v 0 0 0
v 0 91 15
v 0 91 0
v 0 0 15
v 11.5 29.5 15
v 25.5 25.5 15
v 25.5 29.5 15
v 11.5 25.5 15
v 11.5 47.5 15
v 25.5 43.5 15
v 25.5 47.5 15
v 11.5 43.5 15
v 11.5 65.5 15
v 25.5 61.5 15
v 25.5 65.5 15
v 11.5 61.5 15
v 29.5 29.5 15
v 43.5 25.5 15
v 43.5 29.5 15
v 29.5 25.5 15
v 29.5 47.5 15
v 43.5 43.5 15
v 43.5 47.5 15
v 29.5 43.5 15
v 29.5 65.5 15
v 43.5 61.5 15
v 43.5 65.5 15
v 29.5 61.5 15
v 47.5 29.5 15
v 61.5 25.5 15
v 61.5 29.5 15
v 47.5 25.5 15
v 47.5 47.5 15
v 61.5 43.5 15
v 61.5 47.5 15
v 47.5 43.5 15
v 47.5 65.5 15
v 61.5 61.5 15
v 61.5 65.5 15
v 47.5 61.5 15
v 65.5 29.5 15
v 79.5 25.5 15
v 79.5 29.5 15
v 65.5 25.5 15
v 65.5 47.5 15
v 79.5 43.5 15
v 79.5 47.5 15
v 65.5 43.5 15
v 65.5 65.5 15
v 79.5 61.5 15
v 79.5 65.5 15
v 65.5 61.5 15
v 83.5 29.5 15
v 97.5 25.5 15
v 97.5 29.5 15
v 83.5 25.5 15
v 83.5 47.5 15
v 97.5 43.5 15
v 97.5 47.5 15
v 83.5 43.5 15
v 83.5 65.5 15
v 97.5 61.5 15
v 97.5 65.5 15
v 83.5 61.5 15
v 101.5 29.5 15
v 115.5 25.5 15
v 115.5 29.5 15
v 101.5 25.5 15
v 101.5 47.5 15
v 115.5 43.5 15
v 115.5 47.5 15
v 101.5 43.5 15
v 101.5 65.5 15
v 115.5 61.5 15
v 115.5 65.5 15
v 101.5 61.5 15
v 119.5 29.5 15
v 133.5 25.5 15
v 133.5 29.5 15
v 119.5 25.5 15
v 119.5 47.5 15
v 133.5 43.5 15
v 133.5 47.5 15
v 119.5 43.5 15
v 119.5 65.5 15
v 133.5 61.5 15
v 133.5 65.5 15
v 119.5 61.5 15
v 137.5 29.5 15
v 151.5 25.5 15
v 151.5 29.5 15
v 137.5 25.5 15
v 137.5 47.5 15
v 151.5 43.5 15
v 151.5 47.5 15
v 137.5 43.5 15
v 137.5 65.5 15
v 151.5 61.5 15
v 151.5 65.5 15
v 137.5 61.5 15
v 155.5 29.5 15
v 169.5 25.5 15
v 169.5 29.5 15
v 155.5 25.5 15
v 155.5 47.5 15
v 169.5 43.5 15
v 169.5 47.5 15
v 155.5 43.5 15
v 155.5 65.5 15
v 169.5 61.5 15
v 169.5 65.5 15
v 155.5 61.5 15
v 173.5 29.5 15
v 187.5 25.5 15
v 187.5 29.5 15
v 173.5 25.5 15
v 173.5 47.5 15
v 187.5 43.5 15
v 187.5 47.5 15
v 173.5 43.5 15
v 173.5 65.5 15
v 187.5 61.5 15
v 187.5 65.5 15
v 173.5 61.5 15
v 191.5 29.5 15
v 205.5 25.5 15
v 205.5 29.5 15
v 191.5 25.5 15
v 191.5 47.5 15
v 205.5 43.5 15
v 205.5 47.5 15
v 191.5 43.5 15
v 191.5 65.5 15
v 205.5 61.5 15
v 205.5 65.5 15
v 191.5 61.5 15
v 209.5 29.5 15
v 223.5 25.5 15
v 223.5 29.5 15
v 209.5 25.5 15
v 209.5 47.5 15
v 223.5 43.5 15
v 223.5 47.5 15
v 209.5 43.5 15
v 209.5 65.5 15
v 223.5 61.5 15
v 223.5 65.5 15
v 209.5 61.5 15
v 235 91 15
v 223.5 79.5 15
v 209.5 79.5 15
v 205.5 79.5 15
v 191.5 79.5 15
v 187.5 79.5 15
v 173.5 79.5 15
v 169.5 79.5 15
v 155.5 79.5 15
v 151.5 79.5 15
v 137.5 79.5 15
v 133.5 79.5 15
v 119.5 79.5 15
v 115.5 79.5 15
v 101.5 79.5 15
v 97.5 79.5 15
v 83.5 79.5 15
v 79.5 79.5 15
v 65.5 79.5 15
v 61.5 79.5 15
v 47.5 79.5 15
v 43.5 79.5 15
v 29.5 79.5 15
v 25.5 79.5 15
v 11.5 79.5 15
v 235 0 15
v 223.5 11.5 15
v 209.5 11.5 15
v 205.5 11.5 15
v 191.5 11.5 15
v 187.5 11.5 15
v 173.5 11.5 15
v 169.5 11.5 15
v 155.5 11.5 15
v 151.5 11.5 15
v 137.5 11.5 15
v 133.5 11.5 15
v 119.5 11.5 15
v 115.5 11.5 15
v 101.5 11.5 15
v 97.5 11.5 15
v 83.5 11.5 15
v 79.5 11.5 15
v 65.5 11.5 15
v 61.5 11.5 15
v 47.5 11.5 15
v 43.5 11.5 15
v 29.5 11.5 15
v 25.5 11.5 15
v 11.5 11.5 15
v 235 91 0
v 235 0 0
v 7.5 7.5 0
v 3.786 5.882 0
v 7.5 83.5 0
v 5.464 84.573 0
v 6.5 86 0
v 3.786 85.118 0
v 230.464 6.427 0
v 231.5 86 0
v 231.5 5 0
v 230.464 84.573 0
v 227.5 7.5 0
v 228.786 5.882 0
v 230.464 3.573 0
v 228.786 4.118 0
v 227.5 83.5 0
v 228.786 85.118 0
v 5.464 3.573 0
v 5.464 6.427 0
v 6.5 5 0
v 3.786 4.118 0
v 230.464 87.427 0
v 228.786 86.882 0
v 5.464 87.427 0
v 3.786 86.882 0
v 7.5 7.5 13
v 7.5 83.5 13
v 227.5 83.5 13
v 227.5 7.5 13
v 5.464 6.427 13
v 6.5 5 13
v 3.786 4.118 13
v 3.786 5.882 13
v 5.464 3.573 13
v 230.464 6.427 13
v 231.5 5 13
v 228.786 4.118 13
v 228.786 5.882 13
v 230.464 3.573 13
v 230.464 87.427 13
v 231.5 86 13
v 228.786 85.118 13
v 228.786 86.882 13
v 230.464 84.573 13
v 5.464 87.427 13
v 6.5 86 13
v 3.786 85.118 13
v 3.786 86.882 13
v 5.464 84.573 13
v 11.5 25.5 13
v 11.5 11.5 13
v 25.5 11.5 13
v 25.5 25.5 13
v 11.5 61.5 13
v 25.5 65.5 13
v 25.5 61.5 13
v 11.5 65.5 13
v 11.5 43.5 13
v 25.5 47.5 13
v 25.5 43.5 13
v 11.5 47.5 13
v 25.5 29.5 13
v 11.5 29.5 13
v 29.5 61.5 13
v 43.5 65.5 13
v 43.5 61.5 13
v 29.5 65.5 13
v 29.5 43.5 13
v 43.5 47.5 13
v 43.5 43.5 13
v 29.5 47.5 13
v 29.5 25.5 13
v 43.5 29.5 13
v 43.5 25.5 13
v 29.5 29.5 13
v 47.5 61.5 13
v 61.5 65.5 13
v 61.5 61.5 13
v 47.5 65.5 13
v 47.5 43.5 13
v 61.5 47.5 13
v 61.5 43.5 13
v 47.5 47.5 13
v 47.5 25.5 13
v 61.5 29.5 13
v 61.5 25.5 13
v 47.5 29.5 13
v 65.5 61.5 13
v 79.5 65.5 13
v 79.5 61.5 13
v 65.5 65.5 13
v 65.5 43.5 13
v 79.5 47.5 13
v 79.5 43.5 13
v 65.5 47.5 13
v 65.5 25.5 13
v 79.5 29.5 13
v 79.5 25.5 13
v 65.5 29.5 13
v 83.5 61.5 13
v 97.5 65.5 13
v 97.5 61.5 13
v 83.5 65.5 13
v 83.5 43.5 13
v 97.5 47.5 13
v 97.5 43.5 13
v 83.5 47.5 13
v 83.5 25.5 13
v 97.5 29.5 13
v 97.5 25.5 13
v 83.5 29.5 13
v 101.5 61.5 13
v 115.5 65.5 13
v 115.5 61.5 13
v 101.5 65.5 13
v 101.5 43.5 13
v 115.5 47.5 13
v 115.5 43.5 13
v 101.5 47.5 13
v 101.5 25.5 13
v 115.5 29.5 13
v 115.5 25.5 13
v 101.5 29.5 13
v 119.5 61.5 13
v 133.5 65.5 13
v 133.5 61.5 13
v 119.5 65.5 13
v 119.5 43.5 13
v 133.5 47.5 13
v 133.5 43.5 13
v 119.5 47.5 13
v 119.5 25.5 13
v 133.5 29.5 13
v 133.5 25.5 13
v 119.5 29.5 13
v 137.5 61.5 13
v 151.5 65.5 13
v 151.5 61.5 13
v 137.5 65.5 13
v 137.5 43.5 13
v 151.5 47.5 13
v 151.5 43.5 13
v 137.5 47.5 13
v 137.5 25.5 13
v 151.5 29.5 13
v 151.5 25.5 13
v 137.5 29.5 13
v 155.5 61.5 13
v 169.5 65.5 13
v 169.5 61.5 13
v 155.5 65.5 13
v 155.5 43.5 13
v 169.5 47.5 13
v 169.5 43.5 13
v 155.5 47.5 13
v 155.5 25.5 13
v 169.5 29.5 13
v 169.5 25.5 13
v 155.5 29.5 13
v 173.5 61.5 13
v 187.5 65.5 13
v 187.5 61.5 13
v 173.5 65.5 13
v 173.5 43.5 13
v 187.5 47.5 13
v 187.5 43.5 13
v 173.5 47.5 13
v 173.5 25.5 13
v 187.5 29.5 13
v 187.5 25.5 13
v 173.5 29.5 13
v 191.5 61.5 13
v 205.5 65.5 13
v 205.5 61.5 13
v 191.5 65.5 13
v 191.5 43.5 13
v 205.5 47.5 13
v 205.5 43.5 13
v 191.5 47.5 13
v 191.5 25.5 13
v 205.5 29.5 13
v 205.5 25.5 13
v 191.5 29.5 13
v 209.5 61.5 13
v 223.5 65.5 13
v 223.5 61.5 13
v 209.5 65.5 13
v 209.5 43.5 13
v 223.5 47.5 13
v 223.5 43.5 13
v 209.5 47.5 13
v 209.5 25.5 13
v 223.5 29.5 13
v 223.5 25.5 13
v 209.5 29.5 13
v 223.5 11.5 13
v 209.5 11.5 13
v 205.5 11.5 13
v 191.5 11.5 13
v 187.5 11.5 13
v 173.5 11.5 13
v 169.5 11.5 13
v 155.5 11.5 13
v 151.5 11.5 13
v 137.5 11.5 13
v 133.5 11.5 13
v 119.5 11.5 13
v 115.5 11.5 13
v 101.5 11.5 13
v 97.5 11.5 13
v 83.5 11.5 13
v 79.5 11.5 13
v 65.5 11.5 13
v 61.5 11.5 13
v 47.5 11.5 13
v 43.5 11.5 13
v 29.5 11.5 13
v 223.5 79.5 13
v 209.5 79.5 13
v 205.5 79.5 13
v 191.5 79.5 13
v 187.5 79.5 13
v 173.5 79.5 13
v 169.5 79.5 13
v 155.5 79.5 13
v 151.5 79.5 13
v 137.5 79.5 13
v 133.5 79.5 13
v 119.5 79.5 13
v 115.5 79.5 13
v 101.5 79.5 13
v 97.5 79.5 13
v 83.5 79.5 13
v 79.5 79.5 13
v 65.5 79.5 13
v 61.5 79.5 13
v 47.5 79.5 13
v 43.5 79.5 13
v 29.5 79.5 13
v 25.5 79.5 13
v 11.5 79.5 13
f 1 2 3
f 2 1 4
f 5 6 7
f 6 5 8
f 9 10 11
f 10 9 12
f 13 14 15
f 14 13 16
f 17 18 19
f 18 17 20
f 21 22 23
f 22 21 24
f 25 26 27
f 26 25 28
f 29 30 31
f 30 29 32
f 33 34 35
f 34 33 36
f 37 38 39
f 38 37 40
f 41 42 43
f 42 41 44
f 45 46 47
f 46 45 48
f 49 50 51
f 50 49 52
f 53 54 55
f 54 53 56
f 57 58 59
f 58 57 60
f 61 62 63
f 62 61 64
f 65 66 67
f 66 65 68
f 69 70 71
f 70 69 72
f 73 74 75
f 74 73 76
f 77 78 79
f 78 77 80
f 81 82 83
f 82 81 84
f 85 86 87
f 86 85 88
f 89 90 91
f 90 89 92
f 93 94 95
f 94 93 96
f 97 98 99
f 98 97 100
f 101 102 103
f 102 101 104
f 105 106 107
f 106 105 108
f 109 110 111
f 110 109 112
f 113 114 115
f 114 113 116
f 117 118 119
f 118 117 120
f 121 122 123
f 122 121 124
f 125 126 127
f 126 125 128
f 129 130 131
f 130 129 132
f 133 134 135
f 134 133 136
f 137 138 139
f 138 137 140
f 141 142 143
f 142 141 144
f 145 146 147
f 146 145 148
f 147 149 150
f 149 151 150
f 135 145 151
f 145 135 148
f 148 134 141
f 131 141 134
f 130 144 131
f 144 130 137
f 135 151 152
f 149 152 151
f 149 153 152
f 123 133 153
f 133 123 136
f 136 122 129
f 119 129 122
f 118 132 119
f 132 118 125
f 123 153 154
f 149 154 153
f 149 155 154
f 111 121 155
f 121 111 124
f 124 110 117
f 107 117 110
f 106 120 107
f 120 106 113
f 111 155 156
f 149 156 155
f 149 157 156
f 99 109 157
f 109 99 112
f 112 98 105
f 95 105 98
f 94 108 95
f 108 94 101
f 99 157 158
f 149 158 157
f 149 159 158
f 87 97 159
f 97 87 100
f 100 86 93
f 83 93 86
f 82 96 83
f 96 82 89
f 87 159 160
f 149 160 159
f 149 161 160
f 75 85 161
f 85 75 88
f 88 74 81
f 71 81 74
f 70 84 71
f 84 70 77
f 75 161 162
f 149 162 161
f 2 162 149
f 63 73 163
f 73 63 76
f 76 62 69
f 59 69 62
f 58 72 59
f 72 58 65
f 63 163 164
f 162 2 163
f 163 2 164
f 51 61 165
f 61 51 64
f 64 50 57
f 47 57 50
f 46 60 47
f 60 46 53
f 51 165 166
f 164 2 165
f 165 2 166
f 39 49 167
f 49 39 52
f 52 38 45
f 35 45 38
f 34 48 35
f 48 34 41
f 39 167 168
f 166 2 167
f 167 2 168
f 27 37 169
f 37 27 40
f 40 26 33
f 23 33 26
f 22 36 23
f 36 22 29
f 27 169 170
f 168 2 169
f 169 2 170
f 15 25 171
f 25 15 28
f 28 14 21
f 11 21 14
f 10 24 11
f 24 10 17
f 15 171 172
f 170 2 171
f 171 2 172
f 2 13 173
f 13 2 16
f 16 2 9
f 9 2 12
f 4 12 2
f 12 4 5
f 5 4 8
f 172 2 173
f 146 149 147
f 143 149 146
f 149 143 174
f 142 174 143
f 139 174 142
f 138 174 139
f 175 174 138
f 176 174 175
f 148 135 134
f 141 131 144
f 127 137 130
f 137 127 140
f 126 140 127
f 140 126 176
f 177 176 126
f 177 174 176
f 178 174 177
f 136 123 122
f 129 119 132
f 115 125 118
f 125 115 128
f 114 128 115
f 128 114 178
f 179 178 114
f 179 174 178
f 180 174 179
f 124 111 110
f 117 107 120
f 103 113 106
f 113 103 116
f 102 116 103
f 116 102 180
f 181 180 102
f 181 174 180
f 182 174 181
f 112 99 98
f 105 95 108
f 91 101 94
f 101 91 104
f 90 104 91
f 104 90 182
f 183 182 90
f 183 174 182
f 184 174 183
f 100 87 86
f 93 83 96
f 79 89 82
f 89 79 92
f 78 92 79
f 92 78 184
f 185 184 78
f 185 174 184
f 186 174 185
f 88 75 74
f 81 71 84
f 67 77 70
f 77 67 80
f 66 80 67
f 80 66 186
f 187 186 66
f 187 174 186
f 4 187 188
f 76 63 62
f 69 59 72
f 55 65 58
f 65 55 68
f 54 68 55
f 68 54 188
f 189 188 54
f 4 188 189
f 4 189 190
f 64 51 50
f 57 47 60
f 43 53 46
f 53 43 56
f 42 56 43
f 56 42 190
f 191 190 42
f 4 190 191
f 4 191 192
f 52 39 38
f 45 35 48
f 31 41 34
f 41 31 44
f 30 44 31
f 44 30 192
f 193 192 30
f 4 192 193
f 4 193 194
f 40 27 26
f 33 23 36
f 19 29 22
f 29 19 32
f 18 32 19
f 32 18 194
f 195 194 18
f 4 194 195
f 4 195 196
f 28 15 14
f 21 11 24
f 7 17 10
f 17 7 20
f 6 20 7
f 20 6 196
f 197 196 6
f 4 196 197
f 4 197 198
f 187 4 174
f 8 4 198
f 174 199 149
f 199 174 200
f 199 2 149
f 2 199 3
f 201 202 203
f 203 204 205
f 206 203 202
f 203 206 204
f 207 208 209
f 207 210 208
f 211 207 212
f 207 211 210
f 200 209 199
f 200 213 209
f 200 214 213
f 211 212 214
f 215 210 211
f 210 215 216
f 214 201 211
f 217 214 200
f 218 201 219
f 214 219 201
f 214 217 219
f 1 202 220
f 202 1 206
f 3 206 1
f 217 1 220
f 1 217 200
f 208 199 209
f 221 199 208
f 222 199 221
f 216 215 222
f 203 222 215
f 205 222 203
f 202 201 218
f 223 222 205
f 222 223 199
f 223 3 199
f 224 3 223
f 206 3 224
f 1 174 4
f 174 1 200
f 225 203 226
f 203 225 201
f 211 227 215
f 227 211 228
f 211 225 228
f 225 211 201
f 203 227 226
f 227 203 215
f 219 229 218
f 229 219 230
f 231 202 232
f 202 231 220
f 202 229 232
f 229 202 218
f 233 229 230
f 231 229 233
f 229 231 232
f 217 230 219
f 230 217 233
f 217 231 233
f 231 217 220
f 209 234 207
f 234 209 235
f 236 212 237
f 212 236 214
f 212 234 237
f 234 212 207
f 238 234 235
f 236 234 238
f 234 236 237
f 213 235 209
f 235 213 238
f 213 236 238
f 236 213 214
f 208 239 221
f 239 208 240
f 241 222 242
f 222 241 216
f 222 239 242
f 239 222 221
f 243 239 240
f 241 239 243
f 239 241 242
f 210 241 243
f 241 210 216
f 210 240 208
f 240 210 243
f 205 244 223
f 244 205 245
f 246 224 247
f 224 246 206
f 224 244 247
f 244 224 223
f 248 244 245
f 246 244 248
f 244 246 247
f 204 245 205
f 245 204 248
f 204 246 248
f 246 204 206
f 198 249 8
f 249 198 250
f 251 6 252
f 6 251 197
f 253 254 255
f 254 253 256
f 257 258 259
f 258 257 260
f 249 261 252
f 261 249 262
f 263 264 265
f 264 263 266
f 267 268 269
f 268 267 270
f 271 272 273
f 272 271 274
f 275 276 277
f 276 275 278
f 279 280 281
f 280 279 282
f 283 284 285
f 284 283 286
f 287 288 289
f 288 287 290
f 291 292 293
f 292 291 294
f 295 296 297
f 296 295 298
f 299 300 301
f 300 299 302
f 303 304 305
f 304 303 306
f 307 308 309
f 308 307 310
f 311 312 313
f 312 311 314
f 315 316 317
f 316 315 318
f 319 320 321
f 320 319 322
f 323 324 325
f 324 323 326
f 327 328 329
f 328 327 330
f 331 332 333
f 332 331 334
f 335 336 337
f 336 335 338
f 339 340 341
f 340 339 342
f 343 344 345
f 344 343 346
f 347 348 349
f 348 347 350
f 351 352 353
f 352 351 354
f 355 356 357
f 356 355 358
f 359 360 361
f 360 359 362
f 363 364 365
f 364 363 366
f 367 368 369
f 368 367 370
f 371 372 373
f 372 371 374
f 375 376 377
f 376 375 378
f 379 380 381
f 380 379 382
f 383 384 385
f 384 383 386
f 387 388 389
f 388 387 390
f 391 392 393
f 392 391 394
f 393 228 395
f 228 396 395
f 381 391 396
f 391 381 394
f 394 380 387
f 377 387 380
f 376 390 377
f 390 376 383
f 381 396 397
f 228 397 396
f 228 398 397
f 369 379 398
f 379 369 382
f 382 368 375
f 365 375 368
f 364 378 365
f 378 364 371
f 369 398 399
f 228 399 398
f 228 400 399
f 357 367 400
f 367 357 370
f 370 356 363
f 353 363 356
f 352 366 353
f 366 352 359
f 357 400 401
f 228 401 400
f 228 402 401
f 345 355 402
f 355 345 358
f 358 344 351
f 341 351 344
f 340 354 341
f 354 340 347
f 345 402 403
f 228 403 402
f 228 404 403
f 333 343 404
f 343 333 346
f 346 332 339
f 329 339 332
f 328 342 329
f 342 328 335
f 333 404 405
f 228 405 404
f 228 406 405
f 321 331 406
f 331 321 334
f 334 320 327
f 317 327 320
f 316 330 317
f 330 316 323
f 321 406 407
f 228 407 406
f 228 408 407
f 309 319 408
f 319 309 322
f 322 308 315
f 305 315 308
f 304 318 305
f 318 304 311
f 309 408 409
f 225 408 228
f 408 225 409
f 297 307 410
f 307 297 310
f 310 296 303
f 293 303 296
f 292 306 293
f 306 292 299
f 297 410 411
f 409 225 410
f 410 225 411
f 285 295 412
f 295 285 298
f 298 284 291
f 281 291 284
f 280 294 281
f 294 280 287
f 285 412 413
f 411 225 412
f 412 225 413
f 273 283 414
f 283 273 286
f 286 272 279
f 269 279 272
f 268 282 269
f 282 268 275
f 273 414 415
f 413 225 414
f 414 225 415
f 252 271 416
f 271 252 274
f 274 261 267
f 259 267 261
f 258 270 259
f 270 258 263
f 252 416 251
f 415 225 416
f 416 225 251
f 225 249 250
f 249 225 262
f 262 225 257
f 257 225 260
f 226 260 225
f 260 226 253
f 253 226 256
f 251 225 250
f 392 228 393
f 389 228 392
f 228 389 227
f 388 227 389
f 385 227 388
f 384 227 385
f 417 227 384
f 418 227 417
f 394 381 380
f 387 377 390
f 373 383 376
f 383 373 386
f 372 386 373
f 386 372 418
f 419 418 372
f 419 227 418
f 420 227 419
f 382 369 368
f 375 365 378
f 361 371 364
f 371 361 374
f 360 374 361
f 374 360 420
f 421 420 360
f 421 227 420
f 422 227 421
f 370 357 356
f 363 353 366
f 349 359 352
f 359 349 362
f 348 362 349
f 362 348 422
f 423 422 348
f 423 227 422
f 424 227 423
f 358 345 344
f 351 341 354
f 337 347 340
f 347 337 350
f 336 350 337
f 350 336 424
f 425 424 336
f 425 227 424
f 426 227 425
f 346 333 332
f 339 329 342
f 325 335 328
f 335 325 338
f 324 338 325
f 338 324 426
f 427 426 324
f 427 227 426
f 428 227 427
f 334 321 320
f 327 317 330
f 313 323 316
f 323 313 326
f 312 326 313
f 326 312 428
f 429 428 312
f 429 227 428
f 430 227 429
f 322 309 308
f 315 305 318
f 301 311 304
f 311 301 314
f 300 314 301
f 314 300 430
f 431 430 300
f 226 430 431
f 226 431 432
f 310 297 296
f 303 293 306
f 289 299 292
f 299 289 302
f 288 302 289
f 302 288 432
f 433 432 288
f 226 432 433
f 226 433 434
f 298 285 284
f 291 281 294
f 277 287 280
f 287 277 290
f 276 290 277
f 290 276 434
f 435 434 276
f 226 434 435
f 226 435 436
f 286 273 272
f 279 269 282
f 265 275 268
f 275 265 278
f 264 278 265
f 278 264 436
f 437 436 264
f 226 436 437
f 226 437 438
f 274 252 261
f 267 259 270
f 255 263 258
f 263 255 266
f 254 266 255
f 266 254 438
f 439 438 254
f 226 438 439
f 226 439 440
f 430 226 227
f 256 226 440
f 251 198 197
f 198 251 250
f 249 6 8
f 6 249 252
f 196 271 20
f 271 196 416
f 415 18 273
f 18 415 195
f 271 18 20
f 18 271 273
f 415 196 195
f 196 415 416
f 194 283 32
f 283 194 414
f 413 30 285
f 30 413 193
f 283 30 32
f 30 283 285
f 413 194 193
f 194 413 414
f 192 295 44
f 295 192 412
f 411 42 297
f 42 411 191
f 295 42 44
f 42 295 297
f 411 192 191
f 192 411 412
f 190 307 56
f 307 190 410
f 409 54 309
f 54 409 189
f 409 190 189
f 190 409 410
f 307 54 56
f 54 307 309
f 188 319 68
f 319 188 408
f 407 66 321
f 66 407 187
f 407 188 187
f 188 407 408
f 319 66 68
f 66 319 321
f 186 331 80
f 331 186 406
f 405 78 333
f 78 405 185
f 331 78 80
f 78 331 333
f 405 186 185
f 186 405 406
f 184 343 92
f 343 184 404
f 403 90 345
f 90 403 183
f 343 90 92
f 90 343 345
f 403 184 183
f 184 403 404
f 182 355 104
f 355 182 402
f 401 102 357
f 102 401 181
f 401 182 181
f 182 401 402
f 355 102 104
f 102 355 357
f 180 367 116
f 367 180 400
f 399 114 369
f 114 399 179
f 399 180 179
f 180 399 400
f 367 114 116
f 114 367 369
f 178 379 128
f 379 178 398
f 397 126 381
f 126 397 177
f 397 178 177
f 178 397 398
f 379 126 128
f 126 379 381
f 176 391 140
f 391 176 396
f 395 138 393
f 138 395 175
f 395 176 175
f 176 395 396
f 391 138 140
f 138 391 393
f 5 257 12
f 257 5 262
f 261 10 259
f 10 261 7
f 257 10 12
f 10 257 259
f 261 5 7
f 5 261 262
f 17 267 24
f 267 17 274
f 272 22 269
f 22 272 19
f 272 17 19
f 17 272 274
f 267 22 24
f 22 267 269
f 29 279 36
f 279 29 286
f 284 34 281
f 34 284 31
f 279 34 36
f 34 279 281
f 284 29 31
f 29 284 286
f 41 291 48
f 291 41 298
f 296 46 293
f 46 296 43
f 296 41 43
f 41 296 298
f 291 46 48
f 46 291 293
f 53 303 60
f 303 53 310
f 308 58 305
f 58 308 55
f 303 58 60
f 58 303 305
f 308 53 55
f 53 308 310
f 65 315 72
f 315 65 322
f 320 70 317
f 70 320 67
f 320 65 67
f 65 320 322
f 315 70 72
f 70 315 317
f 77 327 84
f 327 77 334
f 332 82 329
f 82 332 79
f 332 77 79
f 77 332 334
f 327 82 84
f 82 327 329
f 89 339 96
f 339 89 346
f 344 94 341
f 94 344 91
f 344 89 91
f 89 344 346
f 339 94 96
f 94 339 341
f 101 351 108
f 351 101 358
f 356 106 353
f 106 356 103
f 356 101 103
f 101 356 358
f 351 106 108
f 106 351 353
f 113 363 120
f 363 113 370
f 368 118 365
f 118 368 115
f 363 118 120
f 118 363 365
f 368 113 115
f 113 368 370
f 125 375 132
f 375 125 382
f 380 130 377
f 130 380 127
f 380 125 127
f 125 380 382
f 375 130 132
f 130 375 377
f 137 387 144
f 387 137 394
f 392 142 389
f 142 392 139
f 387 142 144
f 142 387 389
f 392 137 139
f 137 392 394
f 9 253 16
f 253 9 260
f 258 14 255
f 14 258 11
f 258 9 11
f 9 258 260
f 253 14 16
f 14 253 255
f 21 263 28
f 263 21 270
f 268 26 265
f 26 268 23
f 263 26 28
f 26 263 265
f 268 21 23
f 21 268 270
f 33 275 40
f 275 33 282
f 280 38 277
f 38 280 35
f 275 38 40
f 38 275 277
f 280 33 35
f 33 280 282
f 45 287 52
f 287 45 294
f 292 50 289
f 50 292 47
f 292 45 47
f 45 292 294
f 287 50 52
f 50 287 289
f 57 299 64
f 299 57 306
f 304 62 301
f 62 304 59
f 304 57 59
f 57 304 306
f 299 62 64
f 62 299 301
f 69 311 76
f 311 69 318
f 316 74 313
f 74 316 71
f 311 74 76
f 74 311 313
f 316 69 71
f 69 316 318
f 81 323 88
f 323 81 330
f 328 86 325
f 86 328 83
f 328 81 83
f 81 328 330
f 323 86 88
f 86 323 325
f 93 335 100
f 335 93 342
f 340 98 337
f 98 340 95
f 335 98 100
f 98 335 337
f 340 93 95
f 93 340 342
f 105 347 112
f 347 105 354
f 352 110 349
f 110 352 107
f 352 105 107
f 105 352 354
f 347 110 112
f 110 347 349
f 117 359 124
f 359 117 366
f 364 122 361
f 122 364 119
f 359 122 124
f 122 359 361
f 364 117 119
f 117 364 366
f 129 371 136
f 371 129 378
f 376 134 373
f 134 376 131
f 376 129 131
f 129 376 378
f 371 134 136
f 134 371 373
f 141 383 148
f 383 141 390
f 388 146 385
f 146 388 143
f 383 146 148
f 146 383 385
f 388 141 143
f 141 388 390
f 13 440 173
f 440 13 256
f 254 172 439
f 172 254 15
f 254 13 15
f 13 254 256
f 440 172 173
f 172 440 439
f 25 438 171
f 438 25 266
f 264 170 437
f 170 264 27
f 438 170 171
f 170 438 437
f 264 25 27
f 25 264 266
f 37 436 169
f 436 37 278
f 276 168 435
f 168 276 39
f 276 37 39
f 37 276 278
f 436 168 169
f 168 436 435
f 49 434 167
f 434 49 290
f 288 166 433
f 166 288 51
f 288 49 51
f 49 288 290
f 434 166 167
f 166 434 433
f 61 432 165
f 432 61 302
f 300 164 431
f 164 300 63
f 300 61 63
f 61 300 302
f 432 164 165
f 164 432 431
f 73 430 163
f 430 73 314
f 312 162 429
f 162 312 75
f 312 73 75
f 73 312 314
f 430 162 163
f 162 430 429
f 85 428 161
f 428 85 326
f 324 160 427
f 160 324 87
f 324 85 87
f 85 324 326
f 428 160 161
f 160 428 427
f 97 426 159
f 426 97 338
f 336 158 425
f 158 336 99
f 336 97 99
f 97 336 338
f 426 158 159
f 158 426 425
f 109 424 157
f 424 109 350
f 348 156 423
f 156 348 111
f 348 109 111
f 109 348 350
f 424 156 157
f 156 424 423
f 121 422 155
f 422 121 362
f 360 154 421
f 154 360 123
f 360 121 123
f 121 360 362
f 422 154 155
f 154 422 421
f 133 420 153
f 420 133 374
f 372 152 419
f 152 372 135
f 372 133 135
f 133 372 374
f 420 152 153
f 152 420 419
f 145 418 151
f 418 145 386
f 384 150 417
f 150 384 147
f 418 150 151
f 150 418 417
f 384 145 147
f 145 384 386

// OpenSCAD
/*
Cherry switches dimesions:
    14*14 mm
    mountplate click: 2mm
    
    Assuming 4mm between switches in the mount plate is ok...
    
    there is probably not enough space inside the box for hand wiring and board...
*/
/*difference(){
    cube([12*(14+4)+4,4*(14+4)+4,2]);
    
    for(j=[0:3]){
        for(i=[0:11]){
            translate([(18*i)+4,(18*j)+4])
            cube([14,14,4]);    
        }     
    }  
}*/

/*translate([-4,-4,-15]){

    translate([4,4,0])
    difference(){
        cube([12*(14+4)+4,4*(14+4)+4,8]);
        translate([2,2])
        cube([12*(14+4),4*(14+4),8]);
    }
    
    difference(){
        cube([12*(14+4)+4+8,4*(14+4)+4+8,10]);
        translate([4,4,2])
        cube([12*(14+4)+4,4*(14+4)+4,8]);
    } 
}*/

// Paramters
rows = 4;
columns = 12;
switchSide = 14;
interSwitchMargin = 4; // TODO - set a reasonable value here
externalMargin = 4;

plateWidth = columns * (14 + interSwitchMargin) + externalMargin;
plateHeight = rows * (14 + interSwitchMargin) + externalMargin;
plateZ = 2;

plateBoxMargin = 15;
plateBoxHeight = 15;

boxScrewRadius = 1.5;
boxScrewMargin = 5;


// Upper Box
difference(){
    cube([plateWidth+plateBoxMargin, plateHeight+plateBoxMargin, plateBoxHeight]);
    translate([plateBoxMargin/2, plateBoxMargin/2])
    cube([plateWidth, plateHeight, plateBoxHeight]);
    
    screwPostHeight = plateBoxHeight-2;
    
    translate([boxScrewMargin, boxScrewMargin])
    cylinder(screwPostHeight,boxScrewRadius,boxScrewRadius);
    
    translate([plateWidth+plateBoxMargin-boxScrewMargin, boxScrewMargin])
    cylinder(screwPostHeight,boxScrewRadius,boxScrewRadius);
    
    translate([plateWidth+plateBoxMargin-boxScrewMargin, plateHeight+plateBoxMargin-boxScrewMargin])
    cylinder(screwPostHeight,boxScrewRadius,boxScrewRadius);
    
    translate([boxScrewMargin, plateHeight+plateBoxMargin-boxScrewMargin])
    cylinder(screwPostHeight,boxScrewRadius,boxScrewRadius);    
}

// Switch plate
translate([plateBoxMargin/2, plateBoxMargin/2, plateBoxHeight - plateZ])
difference(){
    cube([plateWidth, plateHeight, plateZ]);
    
    for(j=[0:rows - 1]){
        for(i=[0:columns - 1]){
            translate([
                ((switchSide + interSwitchMargin) * i) + interSwitchMargin,
                ((switchSide + interSwitchMargin) * j) + interSwitchMargin
            ])
            cube([switchSide,switchSide,plateZ + 1]);    
        }     
    }  
}
